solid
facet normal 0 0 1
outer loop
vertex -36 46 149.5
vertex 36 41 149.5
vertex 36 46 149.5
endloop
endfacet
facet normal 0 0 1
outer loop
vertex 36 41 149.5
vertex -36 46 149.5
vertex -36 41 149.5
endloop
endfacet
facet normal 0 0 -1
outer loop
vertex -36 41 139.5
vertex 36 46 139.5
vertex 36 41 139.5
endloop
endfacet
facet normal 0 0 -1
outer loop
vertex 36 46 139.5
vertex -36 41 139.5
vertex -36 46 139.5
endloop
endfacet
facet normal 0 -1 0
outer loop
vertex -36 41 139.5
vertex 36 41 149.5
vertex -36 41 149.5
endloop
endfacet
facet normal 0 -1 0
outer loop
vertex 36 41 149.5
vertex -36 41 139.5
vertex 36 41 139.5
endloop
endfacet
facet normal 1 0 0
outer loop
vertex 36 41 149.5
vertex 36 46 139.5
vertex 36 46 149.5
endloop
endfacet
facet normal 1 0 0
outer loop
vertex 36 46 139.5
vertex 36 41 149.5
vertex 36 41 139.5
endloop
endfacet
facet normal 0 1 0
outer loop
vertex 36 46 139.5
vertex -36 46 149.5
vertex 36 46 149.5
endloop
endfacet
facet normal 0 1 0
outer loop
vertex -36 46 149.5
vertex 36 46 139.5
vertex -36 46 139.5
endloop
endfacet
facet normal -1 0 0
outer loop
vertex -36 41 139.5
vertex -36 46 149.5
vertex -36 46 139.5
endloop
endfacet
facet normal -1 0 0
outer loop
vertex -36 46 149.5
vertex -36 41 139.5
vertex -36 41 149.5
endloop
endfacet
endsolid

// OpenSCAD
// file: local_modules/lcd.scad
LCD_X=76;
LCD_Y=1.5;
LCD_Z=138;
LCD_DISP_X=LCD_X - 1.5 * 2;
LCD_DISP_Z_OFFSET_FROM_BOTTOM=6;
LCD_DISP_Z=LCD_Z-LCD_DISP_Z_OFFSET_FROM_BOTTOM - 1.5;

module lcd(margin=0, draw_display_region=false) {
  translate([0, 0, LCD_Z/2]){
    cube(size=[LCD_X+margin, LCD_Y+margin, LCD_Z+margin], center=true);

    if(draw_display_region){
      translate([0, 0, -(LCD_Z - LCD_DISP_Z)/2 + LCD_DISP_Z_OFFSET_FROM_BOTTOM]) 
      color("green", 0.5)
      cube(size=[LCD_DISP_X, LCD_Y, LCD_DISP_Z], center=true);
    }
  }
}
// file: scad-utils/morphology.scad
// Copyright (c) 2013 Oskar Linde. All rights reserved.
// License: BSD
//
// This library contains basic 2D morphology operations
//
// outset(d=1)            - creates a polygon at an offset d outside a 2D shape
// inset(d=1)             - creates a polygon at an offset d inside a 2D shape
// fillet(r=1)            - adds fillets of radius r to all concave corners of a 2D shape
// rounding(r=1)          - adds rounding to all convex corners of a 2D shape
// shell(d,center=false)  - makes a shell of width d along the edge of a 2D shape
//                        - positive values of d places the shell on the outside
//                        - negative values of d places the shell on the inside
//                        - center=true and positive d places the shell centered on the edge

module outset(d=1) {
	// Bug workaround for older OpenSCAD versions
	if (version_num() < 20130424) render() outset_extruded(d) children();
	else minkowski() {
		circle(r=d);
		children();
	}
}

module outset_extruded(d=1) {
   projection(cut=true) minkowski() {
        cylinder(r=d);
        linear_extrude(center=true) children();
   }
}

module inset(d=1) {
	 render() inverse() outset(d=d) inverse() children();
}

module fillet(r=1) {
	inset(d=r) render() outset(d=r) children();
}

module rounding(r=1) {
	outset(d=r) inset(d=r) children();
}

module shell(d,center=false) {
	if (center && d > 0) {
		difference() {
			outset(d=d/2) children();
			inset(d=d/2) children();
		}
	}
	if (!center && d > 0) {
		difference() {
			outset(d=d) children();
			children();
		}
	}
	if (!center && d < 0) {
		difference() {
			children();
			inset(d=-d) children();
		}
	}
	if (d == 0) children();
}


// Below are for internal use only

module inverse() {
	difference() {
		square(1e5,center=true);
		children();
	}
}


// TEST CODE

use <mirror.scad>

module arrow(l=1,w=.6,t=0.15) {
	mirror_y() polygon([[0,0],[l,0],[l-w/2,w/2],[l-w/2-sqrt(2)*t,w/2],[l-t/2-sqrt(2)*t,t/2],[0,t/2]]);
}

module shape() {
	polygon([[0,0],[1,0],[1.5,1],[2.5,1],[2,-1],[0,-1]]);
}

if(0) assign($fn=32) {

	for (p = [0:10*3-1]) assign(o=floor(p/3)) {
		translate([(p%3)*2.5,-o*3]) {
			//%if (p % 3 == 1) translate([0,0,1]) shape();
			if (p % 3 == 0) shape();
			if (p % 3 == 1) translate([0.6,0]) arrow();
			if (p % 3 == 2) {
				if (o == 0) inset(d=0.3) shape();
				if (o == 1) outset(d=0.3) shape();
				if (o == 2) rounding(r=0.3) shape();
				if (o == 3) fillet(r=0.3) shape();
				if (o == 4) shell(d=0.3) shape();
				if (o == 5) shell(d=-0.3) shape();
				if (o == 6) shell(d=0.3,center=true) shape();
				if (o == 7) rounding(r=0.3) fillet(r=0.3) shape();
				if (o == 8) shell(d=0.3,center=true) fillet(r=0.3) rounding(r=0.3) shape();
				if (o == 9) shell(d=-0.3) fillet(r=0.3) rounding(r=0.3) shape();
			}
		}
	}
}
// file: scad-utils/mirror.scad
// Copyright (c) 2013 Oskar Linde. All rights reserved.
// License: BSD
//
// This library contains simple mirroring functions
//
// mirror_x()
// mirror_y()
// mirror_z()


module mirror_x() {
  union() {
    child();
    scale([-1,1,1]) child();
  }
}

module mirror_y() {
  union() {
    child();
    scale([1,-1,1]) child();
  }
}

module mirror_z() {
  union() {
    child();
    scale([1,1,-1]) child();
  }
}
// file: _kagedourou_bottom_frame_a.scad
include <./_kagedourou_top.scad>

module kagedourou_bottom_frame_a() {
  translate([0, KD_TOP_Y/2 - KD_FRAME_INNER_T/2, KD_FRAME_T*2 + LCD_DISP_Z - LCD_DISP_Z_OFFSET_FROM_BOTTOM]) 
  cube(size=[KD_TOP_X - KD_FRAME_T*2, KD_FRAME_INNER_T, KD_FRAME_T], center=true);
}
// file: _kagedourou_side_frame.scad
include <./_kagedourou_top.scad>

KD_SIDE_FRAME_Z=155;

module kagedourou_side_frame() {
  translate([KD_TOP_X/2 - KD_FRAME_T/2, KD_TOP_Y/2 - KD_FRAME_T/2, KD_FRAME_T]) 
  linear_extrude(height=KD_SIDE_FRAME_Z, center=!true, convexity=10, twist=0)
  difference(){
    square(size=[KD_FRAME_T, KD_FRAME_T], center=true);

    // inner space
    rotate([0, 0, 180])
    square(size=[KD_FRAME_INNER_T, KD_FRAME_INNER_T], center=!true);
  }
}
// file: _kagedourou_top.scad
include <scad-utils/mirror.scad>
include <scad-utils/morphology.scad>

include <./local_modules/lcd.scad>


module lcd_for_top(){
  translate([0, KD_TOP_Y/2 - LCD_Y/2 - (KD_FRAME_INNER_T + 0.5), LCD_Z + KD_FRAME_T - 2]) 
  rotate([180, 0, 0]) 
  lcd(draw_display_region=true);
}

KD_FRAME_T=10;
KD_FRAME_INNER_T=5;

KD_TOP_X=LCD_X-2*2+KD_FRAME_T*2;
KD_TOP_Y=KD_TOP_X;
echo(str("KD_TOP_X=", KD_TOP_X));
echo(str("KD_TOP_Y=", KD_TOP_Y));

KD_TOP_DISP_HOLDER_X=10;
KD_TOP_DISP_HOLDER_Y=4*2;

module kagedourou_top_display_holder(args) {
  translate([0, KD_TOP_Y/2 - KD_FRAME_INNER_T, 0]){
    difference() {

      linear_extrude(height=KD_FRAME_T, center=!true, convexity=10, twist=0)
      square(size=[KD_TOP_DISP_HOLDER_X, KD_TOP_DISP_HOLDER_Y], center=true);

      translate([0, 0, KD_FRAME_T - 2]) 
      linear_extrude(height=KD_FRAME_T, center=!true, convexity=10, twist=0)
      square(size=[KD_TOP_DISP_HOLDER_X, (LCD_Y + 1) * 2], center=true);
    }

  }
}

module kagedourou_top() {
  difference() {
    linear_extrude(height=KD_FRAME_T, center=!true, convexity=10, twist=0)
    difference(){
      square(size=[KD_TOP_X, KD_TOP_Y], center=true);

      // top window
      offset(delta=-KD_FRAME_T)
      square(size=[KD_TOP_X, KD_TOP_Y], center=true);
    }

    translate([0, 0, 5]) 
    linear_extrude(height=KD_FRAME_T, center=!true, convexity=10, twist=0)
    offset(delta=(KD_FRAME_T - KD_FRAME_INNER_T))
    offset(delta=-KD_FRAME_T)
    square(size=[KD_TOP_X, KD_TOP_Y], center=true);
  }

  kagedourou_top_display_holder();
}

// kagedourou_top();
// main file
include <./_kagedourou_top.scad>
include <./_kagedourou_side_frame.scad>
include <./_kagedourou_bottom_frame_a.scad>

$fn=50;

%
lcd_for_top();
%
kagedourou_top();
%
kagedourou_side_frame();

kagedourou_bottom_frame_a();
